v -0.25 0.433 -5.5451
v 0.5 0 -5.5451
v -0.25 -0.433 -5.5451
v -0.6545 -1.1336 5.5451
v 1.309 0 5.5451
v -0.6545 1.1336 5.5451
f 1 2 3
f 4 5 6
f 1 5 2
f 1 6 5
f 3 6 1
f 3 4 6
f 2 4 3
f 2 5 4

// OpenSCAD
 golden = 1.618034;
 linear_extrude(height=pow(golden, 5), center=true, convexity=10, scale=pow(golden,2))
 circle(r=.5, $fn=3);
